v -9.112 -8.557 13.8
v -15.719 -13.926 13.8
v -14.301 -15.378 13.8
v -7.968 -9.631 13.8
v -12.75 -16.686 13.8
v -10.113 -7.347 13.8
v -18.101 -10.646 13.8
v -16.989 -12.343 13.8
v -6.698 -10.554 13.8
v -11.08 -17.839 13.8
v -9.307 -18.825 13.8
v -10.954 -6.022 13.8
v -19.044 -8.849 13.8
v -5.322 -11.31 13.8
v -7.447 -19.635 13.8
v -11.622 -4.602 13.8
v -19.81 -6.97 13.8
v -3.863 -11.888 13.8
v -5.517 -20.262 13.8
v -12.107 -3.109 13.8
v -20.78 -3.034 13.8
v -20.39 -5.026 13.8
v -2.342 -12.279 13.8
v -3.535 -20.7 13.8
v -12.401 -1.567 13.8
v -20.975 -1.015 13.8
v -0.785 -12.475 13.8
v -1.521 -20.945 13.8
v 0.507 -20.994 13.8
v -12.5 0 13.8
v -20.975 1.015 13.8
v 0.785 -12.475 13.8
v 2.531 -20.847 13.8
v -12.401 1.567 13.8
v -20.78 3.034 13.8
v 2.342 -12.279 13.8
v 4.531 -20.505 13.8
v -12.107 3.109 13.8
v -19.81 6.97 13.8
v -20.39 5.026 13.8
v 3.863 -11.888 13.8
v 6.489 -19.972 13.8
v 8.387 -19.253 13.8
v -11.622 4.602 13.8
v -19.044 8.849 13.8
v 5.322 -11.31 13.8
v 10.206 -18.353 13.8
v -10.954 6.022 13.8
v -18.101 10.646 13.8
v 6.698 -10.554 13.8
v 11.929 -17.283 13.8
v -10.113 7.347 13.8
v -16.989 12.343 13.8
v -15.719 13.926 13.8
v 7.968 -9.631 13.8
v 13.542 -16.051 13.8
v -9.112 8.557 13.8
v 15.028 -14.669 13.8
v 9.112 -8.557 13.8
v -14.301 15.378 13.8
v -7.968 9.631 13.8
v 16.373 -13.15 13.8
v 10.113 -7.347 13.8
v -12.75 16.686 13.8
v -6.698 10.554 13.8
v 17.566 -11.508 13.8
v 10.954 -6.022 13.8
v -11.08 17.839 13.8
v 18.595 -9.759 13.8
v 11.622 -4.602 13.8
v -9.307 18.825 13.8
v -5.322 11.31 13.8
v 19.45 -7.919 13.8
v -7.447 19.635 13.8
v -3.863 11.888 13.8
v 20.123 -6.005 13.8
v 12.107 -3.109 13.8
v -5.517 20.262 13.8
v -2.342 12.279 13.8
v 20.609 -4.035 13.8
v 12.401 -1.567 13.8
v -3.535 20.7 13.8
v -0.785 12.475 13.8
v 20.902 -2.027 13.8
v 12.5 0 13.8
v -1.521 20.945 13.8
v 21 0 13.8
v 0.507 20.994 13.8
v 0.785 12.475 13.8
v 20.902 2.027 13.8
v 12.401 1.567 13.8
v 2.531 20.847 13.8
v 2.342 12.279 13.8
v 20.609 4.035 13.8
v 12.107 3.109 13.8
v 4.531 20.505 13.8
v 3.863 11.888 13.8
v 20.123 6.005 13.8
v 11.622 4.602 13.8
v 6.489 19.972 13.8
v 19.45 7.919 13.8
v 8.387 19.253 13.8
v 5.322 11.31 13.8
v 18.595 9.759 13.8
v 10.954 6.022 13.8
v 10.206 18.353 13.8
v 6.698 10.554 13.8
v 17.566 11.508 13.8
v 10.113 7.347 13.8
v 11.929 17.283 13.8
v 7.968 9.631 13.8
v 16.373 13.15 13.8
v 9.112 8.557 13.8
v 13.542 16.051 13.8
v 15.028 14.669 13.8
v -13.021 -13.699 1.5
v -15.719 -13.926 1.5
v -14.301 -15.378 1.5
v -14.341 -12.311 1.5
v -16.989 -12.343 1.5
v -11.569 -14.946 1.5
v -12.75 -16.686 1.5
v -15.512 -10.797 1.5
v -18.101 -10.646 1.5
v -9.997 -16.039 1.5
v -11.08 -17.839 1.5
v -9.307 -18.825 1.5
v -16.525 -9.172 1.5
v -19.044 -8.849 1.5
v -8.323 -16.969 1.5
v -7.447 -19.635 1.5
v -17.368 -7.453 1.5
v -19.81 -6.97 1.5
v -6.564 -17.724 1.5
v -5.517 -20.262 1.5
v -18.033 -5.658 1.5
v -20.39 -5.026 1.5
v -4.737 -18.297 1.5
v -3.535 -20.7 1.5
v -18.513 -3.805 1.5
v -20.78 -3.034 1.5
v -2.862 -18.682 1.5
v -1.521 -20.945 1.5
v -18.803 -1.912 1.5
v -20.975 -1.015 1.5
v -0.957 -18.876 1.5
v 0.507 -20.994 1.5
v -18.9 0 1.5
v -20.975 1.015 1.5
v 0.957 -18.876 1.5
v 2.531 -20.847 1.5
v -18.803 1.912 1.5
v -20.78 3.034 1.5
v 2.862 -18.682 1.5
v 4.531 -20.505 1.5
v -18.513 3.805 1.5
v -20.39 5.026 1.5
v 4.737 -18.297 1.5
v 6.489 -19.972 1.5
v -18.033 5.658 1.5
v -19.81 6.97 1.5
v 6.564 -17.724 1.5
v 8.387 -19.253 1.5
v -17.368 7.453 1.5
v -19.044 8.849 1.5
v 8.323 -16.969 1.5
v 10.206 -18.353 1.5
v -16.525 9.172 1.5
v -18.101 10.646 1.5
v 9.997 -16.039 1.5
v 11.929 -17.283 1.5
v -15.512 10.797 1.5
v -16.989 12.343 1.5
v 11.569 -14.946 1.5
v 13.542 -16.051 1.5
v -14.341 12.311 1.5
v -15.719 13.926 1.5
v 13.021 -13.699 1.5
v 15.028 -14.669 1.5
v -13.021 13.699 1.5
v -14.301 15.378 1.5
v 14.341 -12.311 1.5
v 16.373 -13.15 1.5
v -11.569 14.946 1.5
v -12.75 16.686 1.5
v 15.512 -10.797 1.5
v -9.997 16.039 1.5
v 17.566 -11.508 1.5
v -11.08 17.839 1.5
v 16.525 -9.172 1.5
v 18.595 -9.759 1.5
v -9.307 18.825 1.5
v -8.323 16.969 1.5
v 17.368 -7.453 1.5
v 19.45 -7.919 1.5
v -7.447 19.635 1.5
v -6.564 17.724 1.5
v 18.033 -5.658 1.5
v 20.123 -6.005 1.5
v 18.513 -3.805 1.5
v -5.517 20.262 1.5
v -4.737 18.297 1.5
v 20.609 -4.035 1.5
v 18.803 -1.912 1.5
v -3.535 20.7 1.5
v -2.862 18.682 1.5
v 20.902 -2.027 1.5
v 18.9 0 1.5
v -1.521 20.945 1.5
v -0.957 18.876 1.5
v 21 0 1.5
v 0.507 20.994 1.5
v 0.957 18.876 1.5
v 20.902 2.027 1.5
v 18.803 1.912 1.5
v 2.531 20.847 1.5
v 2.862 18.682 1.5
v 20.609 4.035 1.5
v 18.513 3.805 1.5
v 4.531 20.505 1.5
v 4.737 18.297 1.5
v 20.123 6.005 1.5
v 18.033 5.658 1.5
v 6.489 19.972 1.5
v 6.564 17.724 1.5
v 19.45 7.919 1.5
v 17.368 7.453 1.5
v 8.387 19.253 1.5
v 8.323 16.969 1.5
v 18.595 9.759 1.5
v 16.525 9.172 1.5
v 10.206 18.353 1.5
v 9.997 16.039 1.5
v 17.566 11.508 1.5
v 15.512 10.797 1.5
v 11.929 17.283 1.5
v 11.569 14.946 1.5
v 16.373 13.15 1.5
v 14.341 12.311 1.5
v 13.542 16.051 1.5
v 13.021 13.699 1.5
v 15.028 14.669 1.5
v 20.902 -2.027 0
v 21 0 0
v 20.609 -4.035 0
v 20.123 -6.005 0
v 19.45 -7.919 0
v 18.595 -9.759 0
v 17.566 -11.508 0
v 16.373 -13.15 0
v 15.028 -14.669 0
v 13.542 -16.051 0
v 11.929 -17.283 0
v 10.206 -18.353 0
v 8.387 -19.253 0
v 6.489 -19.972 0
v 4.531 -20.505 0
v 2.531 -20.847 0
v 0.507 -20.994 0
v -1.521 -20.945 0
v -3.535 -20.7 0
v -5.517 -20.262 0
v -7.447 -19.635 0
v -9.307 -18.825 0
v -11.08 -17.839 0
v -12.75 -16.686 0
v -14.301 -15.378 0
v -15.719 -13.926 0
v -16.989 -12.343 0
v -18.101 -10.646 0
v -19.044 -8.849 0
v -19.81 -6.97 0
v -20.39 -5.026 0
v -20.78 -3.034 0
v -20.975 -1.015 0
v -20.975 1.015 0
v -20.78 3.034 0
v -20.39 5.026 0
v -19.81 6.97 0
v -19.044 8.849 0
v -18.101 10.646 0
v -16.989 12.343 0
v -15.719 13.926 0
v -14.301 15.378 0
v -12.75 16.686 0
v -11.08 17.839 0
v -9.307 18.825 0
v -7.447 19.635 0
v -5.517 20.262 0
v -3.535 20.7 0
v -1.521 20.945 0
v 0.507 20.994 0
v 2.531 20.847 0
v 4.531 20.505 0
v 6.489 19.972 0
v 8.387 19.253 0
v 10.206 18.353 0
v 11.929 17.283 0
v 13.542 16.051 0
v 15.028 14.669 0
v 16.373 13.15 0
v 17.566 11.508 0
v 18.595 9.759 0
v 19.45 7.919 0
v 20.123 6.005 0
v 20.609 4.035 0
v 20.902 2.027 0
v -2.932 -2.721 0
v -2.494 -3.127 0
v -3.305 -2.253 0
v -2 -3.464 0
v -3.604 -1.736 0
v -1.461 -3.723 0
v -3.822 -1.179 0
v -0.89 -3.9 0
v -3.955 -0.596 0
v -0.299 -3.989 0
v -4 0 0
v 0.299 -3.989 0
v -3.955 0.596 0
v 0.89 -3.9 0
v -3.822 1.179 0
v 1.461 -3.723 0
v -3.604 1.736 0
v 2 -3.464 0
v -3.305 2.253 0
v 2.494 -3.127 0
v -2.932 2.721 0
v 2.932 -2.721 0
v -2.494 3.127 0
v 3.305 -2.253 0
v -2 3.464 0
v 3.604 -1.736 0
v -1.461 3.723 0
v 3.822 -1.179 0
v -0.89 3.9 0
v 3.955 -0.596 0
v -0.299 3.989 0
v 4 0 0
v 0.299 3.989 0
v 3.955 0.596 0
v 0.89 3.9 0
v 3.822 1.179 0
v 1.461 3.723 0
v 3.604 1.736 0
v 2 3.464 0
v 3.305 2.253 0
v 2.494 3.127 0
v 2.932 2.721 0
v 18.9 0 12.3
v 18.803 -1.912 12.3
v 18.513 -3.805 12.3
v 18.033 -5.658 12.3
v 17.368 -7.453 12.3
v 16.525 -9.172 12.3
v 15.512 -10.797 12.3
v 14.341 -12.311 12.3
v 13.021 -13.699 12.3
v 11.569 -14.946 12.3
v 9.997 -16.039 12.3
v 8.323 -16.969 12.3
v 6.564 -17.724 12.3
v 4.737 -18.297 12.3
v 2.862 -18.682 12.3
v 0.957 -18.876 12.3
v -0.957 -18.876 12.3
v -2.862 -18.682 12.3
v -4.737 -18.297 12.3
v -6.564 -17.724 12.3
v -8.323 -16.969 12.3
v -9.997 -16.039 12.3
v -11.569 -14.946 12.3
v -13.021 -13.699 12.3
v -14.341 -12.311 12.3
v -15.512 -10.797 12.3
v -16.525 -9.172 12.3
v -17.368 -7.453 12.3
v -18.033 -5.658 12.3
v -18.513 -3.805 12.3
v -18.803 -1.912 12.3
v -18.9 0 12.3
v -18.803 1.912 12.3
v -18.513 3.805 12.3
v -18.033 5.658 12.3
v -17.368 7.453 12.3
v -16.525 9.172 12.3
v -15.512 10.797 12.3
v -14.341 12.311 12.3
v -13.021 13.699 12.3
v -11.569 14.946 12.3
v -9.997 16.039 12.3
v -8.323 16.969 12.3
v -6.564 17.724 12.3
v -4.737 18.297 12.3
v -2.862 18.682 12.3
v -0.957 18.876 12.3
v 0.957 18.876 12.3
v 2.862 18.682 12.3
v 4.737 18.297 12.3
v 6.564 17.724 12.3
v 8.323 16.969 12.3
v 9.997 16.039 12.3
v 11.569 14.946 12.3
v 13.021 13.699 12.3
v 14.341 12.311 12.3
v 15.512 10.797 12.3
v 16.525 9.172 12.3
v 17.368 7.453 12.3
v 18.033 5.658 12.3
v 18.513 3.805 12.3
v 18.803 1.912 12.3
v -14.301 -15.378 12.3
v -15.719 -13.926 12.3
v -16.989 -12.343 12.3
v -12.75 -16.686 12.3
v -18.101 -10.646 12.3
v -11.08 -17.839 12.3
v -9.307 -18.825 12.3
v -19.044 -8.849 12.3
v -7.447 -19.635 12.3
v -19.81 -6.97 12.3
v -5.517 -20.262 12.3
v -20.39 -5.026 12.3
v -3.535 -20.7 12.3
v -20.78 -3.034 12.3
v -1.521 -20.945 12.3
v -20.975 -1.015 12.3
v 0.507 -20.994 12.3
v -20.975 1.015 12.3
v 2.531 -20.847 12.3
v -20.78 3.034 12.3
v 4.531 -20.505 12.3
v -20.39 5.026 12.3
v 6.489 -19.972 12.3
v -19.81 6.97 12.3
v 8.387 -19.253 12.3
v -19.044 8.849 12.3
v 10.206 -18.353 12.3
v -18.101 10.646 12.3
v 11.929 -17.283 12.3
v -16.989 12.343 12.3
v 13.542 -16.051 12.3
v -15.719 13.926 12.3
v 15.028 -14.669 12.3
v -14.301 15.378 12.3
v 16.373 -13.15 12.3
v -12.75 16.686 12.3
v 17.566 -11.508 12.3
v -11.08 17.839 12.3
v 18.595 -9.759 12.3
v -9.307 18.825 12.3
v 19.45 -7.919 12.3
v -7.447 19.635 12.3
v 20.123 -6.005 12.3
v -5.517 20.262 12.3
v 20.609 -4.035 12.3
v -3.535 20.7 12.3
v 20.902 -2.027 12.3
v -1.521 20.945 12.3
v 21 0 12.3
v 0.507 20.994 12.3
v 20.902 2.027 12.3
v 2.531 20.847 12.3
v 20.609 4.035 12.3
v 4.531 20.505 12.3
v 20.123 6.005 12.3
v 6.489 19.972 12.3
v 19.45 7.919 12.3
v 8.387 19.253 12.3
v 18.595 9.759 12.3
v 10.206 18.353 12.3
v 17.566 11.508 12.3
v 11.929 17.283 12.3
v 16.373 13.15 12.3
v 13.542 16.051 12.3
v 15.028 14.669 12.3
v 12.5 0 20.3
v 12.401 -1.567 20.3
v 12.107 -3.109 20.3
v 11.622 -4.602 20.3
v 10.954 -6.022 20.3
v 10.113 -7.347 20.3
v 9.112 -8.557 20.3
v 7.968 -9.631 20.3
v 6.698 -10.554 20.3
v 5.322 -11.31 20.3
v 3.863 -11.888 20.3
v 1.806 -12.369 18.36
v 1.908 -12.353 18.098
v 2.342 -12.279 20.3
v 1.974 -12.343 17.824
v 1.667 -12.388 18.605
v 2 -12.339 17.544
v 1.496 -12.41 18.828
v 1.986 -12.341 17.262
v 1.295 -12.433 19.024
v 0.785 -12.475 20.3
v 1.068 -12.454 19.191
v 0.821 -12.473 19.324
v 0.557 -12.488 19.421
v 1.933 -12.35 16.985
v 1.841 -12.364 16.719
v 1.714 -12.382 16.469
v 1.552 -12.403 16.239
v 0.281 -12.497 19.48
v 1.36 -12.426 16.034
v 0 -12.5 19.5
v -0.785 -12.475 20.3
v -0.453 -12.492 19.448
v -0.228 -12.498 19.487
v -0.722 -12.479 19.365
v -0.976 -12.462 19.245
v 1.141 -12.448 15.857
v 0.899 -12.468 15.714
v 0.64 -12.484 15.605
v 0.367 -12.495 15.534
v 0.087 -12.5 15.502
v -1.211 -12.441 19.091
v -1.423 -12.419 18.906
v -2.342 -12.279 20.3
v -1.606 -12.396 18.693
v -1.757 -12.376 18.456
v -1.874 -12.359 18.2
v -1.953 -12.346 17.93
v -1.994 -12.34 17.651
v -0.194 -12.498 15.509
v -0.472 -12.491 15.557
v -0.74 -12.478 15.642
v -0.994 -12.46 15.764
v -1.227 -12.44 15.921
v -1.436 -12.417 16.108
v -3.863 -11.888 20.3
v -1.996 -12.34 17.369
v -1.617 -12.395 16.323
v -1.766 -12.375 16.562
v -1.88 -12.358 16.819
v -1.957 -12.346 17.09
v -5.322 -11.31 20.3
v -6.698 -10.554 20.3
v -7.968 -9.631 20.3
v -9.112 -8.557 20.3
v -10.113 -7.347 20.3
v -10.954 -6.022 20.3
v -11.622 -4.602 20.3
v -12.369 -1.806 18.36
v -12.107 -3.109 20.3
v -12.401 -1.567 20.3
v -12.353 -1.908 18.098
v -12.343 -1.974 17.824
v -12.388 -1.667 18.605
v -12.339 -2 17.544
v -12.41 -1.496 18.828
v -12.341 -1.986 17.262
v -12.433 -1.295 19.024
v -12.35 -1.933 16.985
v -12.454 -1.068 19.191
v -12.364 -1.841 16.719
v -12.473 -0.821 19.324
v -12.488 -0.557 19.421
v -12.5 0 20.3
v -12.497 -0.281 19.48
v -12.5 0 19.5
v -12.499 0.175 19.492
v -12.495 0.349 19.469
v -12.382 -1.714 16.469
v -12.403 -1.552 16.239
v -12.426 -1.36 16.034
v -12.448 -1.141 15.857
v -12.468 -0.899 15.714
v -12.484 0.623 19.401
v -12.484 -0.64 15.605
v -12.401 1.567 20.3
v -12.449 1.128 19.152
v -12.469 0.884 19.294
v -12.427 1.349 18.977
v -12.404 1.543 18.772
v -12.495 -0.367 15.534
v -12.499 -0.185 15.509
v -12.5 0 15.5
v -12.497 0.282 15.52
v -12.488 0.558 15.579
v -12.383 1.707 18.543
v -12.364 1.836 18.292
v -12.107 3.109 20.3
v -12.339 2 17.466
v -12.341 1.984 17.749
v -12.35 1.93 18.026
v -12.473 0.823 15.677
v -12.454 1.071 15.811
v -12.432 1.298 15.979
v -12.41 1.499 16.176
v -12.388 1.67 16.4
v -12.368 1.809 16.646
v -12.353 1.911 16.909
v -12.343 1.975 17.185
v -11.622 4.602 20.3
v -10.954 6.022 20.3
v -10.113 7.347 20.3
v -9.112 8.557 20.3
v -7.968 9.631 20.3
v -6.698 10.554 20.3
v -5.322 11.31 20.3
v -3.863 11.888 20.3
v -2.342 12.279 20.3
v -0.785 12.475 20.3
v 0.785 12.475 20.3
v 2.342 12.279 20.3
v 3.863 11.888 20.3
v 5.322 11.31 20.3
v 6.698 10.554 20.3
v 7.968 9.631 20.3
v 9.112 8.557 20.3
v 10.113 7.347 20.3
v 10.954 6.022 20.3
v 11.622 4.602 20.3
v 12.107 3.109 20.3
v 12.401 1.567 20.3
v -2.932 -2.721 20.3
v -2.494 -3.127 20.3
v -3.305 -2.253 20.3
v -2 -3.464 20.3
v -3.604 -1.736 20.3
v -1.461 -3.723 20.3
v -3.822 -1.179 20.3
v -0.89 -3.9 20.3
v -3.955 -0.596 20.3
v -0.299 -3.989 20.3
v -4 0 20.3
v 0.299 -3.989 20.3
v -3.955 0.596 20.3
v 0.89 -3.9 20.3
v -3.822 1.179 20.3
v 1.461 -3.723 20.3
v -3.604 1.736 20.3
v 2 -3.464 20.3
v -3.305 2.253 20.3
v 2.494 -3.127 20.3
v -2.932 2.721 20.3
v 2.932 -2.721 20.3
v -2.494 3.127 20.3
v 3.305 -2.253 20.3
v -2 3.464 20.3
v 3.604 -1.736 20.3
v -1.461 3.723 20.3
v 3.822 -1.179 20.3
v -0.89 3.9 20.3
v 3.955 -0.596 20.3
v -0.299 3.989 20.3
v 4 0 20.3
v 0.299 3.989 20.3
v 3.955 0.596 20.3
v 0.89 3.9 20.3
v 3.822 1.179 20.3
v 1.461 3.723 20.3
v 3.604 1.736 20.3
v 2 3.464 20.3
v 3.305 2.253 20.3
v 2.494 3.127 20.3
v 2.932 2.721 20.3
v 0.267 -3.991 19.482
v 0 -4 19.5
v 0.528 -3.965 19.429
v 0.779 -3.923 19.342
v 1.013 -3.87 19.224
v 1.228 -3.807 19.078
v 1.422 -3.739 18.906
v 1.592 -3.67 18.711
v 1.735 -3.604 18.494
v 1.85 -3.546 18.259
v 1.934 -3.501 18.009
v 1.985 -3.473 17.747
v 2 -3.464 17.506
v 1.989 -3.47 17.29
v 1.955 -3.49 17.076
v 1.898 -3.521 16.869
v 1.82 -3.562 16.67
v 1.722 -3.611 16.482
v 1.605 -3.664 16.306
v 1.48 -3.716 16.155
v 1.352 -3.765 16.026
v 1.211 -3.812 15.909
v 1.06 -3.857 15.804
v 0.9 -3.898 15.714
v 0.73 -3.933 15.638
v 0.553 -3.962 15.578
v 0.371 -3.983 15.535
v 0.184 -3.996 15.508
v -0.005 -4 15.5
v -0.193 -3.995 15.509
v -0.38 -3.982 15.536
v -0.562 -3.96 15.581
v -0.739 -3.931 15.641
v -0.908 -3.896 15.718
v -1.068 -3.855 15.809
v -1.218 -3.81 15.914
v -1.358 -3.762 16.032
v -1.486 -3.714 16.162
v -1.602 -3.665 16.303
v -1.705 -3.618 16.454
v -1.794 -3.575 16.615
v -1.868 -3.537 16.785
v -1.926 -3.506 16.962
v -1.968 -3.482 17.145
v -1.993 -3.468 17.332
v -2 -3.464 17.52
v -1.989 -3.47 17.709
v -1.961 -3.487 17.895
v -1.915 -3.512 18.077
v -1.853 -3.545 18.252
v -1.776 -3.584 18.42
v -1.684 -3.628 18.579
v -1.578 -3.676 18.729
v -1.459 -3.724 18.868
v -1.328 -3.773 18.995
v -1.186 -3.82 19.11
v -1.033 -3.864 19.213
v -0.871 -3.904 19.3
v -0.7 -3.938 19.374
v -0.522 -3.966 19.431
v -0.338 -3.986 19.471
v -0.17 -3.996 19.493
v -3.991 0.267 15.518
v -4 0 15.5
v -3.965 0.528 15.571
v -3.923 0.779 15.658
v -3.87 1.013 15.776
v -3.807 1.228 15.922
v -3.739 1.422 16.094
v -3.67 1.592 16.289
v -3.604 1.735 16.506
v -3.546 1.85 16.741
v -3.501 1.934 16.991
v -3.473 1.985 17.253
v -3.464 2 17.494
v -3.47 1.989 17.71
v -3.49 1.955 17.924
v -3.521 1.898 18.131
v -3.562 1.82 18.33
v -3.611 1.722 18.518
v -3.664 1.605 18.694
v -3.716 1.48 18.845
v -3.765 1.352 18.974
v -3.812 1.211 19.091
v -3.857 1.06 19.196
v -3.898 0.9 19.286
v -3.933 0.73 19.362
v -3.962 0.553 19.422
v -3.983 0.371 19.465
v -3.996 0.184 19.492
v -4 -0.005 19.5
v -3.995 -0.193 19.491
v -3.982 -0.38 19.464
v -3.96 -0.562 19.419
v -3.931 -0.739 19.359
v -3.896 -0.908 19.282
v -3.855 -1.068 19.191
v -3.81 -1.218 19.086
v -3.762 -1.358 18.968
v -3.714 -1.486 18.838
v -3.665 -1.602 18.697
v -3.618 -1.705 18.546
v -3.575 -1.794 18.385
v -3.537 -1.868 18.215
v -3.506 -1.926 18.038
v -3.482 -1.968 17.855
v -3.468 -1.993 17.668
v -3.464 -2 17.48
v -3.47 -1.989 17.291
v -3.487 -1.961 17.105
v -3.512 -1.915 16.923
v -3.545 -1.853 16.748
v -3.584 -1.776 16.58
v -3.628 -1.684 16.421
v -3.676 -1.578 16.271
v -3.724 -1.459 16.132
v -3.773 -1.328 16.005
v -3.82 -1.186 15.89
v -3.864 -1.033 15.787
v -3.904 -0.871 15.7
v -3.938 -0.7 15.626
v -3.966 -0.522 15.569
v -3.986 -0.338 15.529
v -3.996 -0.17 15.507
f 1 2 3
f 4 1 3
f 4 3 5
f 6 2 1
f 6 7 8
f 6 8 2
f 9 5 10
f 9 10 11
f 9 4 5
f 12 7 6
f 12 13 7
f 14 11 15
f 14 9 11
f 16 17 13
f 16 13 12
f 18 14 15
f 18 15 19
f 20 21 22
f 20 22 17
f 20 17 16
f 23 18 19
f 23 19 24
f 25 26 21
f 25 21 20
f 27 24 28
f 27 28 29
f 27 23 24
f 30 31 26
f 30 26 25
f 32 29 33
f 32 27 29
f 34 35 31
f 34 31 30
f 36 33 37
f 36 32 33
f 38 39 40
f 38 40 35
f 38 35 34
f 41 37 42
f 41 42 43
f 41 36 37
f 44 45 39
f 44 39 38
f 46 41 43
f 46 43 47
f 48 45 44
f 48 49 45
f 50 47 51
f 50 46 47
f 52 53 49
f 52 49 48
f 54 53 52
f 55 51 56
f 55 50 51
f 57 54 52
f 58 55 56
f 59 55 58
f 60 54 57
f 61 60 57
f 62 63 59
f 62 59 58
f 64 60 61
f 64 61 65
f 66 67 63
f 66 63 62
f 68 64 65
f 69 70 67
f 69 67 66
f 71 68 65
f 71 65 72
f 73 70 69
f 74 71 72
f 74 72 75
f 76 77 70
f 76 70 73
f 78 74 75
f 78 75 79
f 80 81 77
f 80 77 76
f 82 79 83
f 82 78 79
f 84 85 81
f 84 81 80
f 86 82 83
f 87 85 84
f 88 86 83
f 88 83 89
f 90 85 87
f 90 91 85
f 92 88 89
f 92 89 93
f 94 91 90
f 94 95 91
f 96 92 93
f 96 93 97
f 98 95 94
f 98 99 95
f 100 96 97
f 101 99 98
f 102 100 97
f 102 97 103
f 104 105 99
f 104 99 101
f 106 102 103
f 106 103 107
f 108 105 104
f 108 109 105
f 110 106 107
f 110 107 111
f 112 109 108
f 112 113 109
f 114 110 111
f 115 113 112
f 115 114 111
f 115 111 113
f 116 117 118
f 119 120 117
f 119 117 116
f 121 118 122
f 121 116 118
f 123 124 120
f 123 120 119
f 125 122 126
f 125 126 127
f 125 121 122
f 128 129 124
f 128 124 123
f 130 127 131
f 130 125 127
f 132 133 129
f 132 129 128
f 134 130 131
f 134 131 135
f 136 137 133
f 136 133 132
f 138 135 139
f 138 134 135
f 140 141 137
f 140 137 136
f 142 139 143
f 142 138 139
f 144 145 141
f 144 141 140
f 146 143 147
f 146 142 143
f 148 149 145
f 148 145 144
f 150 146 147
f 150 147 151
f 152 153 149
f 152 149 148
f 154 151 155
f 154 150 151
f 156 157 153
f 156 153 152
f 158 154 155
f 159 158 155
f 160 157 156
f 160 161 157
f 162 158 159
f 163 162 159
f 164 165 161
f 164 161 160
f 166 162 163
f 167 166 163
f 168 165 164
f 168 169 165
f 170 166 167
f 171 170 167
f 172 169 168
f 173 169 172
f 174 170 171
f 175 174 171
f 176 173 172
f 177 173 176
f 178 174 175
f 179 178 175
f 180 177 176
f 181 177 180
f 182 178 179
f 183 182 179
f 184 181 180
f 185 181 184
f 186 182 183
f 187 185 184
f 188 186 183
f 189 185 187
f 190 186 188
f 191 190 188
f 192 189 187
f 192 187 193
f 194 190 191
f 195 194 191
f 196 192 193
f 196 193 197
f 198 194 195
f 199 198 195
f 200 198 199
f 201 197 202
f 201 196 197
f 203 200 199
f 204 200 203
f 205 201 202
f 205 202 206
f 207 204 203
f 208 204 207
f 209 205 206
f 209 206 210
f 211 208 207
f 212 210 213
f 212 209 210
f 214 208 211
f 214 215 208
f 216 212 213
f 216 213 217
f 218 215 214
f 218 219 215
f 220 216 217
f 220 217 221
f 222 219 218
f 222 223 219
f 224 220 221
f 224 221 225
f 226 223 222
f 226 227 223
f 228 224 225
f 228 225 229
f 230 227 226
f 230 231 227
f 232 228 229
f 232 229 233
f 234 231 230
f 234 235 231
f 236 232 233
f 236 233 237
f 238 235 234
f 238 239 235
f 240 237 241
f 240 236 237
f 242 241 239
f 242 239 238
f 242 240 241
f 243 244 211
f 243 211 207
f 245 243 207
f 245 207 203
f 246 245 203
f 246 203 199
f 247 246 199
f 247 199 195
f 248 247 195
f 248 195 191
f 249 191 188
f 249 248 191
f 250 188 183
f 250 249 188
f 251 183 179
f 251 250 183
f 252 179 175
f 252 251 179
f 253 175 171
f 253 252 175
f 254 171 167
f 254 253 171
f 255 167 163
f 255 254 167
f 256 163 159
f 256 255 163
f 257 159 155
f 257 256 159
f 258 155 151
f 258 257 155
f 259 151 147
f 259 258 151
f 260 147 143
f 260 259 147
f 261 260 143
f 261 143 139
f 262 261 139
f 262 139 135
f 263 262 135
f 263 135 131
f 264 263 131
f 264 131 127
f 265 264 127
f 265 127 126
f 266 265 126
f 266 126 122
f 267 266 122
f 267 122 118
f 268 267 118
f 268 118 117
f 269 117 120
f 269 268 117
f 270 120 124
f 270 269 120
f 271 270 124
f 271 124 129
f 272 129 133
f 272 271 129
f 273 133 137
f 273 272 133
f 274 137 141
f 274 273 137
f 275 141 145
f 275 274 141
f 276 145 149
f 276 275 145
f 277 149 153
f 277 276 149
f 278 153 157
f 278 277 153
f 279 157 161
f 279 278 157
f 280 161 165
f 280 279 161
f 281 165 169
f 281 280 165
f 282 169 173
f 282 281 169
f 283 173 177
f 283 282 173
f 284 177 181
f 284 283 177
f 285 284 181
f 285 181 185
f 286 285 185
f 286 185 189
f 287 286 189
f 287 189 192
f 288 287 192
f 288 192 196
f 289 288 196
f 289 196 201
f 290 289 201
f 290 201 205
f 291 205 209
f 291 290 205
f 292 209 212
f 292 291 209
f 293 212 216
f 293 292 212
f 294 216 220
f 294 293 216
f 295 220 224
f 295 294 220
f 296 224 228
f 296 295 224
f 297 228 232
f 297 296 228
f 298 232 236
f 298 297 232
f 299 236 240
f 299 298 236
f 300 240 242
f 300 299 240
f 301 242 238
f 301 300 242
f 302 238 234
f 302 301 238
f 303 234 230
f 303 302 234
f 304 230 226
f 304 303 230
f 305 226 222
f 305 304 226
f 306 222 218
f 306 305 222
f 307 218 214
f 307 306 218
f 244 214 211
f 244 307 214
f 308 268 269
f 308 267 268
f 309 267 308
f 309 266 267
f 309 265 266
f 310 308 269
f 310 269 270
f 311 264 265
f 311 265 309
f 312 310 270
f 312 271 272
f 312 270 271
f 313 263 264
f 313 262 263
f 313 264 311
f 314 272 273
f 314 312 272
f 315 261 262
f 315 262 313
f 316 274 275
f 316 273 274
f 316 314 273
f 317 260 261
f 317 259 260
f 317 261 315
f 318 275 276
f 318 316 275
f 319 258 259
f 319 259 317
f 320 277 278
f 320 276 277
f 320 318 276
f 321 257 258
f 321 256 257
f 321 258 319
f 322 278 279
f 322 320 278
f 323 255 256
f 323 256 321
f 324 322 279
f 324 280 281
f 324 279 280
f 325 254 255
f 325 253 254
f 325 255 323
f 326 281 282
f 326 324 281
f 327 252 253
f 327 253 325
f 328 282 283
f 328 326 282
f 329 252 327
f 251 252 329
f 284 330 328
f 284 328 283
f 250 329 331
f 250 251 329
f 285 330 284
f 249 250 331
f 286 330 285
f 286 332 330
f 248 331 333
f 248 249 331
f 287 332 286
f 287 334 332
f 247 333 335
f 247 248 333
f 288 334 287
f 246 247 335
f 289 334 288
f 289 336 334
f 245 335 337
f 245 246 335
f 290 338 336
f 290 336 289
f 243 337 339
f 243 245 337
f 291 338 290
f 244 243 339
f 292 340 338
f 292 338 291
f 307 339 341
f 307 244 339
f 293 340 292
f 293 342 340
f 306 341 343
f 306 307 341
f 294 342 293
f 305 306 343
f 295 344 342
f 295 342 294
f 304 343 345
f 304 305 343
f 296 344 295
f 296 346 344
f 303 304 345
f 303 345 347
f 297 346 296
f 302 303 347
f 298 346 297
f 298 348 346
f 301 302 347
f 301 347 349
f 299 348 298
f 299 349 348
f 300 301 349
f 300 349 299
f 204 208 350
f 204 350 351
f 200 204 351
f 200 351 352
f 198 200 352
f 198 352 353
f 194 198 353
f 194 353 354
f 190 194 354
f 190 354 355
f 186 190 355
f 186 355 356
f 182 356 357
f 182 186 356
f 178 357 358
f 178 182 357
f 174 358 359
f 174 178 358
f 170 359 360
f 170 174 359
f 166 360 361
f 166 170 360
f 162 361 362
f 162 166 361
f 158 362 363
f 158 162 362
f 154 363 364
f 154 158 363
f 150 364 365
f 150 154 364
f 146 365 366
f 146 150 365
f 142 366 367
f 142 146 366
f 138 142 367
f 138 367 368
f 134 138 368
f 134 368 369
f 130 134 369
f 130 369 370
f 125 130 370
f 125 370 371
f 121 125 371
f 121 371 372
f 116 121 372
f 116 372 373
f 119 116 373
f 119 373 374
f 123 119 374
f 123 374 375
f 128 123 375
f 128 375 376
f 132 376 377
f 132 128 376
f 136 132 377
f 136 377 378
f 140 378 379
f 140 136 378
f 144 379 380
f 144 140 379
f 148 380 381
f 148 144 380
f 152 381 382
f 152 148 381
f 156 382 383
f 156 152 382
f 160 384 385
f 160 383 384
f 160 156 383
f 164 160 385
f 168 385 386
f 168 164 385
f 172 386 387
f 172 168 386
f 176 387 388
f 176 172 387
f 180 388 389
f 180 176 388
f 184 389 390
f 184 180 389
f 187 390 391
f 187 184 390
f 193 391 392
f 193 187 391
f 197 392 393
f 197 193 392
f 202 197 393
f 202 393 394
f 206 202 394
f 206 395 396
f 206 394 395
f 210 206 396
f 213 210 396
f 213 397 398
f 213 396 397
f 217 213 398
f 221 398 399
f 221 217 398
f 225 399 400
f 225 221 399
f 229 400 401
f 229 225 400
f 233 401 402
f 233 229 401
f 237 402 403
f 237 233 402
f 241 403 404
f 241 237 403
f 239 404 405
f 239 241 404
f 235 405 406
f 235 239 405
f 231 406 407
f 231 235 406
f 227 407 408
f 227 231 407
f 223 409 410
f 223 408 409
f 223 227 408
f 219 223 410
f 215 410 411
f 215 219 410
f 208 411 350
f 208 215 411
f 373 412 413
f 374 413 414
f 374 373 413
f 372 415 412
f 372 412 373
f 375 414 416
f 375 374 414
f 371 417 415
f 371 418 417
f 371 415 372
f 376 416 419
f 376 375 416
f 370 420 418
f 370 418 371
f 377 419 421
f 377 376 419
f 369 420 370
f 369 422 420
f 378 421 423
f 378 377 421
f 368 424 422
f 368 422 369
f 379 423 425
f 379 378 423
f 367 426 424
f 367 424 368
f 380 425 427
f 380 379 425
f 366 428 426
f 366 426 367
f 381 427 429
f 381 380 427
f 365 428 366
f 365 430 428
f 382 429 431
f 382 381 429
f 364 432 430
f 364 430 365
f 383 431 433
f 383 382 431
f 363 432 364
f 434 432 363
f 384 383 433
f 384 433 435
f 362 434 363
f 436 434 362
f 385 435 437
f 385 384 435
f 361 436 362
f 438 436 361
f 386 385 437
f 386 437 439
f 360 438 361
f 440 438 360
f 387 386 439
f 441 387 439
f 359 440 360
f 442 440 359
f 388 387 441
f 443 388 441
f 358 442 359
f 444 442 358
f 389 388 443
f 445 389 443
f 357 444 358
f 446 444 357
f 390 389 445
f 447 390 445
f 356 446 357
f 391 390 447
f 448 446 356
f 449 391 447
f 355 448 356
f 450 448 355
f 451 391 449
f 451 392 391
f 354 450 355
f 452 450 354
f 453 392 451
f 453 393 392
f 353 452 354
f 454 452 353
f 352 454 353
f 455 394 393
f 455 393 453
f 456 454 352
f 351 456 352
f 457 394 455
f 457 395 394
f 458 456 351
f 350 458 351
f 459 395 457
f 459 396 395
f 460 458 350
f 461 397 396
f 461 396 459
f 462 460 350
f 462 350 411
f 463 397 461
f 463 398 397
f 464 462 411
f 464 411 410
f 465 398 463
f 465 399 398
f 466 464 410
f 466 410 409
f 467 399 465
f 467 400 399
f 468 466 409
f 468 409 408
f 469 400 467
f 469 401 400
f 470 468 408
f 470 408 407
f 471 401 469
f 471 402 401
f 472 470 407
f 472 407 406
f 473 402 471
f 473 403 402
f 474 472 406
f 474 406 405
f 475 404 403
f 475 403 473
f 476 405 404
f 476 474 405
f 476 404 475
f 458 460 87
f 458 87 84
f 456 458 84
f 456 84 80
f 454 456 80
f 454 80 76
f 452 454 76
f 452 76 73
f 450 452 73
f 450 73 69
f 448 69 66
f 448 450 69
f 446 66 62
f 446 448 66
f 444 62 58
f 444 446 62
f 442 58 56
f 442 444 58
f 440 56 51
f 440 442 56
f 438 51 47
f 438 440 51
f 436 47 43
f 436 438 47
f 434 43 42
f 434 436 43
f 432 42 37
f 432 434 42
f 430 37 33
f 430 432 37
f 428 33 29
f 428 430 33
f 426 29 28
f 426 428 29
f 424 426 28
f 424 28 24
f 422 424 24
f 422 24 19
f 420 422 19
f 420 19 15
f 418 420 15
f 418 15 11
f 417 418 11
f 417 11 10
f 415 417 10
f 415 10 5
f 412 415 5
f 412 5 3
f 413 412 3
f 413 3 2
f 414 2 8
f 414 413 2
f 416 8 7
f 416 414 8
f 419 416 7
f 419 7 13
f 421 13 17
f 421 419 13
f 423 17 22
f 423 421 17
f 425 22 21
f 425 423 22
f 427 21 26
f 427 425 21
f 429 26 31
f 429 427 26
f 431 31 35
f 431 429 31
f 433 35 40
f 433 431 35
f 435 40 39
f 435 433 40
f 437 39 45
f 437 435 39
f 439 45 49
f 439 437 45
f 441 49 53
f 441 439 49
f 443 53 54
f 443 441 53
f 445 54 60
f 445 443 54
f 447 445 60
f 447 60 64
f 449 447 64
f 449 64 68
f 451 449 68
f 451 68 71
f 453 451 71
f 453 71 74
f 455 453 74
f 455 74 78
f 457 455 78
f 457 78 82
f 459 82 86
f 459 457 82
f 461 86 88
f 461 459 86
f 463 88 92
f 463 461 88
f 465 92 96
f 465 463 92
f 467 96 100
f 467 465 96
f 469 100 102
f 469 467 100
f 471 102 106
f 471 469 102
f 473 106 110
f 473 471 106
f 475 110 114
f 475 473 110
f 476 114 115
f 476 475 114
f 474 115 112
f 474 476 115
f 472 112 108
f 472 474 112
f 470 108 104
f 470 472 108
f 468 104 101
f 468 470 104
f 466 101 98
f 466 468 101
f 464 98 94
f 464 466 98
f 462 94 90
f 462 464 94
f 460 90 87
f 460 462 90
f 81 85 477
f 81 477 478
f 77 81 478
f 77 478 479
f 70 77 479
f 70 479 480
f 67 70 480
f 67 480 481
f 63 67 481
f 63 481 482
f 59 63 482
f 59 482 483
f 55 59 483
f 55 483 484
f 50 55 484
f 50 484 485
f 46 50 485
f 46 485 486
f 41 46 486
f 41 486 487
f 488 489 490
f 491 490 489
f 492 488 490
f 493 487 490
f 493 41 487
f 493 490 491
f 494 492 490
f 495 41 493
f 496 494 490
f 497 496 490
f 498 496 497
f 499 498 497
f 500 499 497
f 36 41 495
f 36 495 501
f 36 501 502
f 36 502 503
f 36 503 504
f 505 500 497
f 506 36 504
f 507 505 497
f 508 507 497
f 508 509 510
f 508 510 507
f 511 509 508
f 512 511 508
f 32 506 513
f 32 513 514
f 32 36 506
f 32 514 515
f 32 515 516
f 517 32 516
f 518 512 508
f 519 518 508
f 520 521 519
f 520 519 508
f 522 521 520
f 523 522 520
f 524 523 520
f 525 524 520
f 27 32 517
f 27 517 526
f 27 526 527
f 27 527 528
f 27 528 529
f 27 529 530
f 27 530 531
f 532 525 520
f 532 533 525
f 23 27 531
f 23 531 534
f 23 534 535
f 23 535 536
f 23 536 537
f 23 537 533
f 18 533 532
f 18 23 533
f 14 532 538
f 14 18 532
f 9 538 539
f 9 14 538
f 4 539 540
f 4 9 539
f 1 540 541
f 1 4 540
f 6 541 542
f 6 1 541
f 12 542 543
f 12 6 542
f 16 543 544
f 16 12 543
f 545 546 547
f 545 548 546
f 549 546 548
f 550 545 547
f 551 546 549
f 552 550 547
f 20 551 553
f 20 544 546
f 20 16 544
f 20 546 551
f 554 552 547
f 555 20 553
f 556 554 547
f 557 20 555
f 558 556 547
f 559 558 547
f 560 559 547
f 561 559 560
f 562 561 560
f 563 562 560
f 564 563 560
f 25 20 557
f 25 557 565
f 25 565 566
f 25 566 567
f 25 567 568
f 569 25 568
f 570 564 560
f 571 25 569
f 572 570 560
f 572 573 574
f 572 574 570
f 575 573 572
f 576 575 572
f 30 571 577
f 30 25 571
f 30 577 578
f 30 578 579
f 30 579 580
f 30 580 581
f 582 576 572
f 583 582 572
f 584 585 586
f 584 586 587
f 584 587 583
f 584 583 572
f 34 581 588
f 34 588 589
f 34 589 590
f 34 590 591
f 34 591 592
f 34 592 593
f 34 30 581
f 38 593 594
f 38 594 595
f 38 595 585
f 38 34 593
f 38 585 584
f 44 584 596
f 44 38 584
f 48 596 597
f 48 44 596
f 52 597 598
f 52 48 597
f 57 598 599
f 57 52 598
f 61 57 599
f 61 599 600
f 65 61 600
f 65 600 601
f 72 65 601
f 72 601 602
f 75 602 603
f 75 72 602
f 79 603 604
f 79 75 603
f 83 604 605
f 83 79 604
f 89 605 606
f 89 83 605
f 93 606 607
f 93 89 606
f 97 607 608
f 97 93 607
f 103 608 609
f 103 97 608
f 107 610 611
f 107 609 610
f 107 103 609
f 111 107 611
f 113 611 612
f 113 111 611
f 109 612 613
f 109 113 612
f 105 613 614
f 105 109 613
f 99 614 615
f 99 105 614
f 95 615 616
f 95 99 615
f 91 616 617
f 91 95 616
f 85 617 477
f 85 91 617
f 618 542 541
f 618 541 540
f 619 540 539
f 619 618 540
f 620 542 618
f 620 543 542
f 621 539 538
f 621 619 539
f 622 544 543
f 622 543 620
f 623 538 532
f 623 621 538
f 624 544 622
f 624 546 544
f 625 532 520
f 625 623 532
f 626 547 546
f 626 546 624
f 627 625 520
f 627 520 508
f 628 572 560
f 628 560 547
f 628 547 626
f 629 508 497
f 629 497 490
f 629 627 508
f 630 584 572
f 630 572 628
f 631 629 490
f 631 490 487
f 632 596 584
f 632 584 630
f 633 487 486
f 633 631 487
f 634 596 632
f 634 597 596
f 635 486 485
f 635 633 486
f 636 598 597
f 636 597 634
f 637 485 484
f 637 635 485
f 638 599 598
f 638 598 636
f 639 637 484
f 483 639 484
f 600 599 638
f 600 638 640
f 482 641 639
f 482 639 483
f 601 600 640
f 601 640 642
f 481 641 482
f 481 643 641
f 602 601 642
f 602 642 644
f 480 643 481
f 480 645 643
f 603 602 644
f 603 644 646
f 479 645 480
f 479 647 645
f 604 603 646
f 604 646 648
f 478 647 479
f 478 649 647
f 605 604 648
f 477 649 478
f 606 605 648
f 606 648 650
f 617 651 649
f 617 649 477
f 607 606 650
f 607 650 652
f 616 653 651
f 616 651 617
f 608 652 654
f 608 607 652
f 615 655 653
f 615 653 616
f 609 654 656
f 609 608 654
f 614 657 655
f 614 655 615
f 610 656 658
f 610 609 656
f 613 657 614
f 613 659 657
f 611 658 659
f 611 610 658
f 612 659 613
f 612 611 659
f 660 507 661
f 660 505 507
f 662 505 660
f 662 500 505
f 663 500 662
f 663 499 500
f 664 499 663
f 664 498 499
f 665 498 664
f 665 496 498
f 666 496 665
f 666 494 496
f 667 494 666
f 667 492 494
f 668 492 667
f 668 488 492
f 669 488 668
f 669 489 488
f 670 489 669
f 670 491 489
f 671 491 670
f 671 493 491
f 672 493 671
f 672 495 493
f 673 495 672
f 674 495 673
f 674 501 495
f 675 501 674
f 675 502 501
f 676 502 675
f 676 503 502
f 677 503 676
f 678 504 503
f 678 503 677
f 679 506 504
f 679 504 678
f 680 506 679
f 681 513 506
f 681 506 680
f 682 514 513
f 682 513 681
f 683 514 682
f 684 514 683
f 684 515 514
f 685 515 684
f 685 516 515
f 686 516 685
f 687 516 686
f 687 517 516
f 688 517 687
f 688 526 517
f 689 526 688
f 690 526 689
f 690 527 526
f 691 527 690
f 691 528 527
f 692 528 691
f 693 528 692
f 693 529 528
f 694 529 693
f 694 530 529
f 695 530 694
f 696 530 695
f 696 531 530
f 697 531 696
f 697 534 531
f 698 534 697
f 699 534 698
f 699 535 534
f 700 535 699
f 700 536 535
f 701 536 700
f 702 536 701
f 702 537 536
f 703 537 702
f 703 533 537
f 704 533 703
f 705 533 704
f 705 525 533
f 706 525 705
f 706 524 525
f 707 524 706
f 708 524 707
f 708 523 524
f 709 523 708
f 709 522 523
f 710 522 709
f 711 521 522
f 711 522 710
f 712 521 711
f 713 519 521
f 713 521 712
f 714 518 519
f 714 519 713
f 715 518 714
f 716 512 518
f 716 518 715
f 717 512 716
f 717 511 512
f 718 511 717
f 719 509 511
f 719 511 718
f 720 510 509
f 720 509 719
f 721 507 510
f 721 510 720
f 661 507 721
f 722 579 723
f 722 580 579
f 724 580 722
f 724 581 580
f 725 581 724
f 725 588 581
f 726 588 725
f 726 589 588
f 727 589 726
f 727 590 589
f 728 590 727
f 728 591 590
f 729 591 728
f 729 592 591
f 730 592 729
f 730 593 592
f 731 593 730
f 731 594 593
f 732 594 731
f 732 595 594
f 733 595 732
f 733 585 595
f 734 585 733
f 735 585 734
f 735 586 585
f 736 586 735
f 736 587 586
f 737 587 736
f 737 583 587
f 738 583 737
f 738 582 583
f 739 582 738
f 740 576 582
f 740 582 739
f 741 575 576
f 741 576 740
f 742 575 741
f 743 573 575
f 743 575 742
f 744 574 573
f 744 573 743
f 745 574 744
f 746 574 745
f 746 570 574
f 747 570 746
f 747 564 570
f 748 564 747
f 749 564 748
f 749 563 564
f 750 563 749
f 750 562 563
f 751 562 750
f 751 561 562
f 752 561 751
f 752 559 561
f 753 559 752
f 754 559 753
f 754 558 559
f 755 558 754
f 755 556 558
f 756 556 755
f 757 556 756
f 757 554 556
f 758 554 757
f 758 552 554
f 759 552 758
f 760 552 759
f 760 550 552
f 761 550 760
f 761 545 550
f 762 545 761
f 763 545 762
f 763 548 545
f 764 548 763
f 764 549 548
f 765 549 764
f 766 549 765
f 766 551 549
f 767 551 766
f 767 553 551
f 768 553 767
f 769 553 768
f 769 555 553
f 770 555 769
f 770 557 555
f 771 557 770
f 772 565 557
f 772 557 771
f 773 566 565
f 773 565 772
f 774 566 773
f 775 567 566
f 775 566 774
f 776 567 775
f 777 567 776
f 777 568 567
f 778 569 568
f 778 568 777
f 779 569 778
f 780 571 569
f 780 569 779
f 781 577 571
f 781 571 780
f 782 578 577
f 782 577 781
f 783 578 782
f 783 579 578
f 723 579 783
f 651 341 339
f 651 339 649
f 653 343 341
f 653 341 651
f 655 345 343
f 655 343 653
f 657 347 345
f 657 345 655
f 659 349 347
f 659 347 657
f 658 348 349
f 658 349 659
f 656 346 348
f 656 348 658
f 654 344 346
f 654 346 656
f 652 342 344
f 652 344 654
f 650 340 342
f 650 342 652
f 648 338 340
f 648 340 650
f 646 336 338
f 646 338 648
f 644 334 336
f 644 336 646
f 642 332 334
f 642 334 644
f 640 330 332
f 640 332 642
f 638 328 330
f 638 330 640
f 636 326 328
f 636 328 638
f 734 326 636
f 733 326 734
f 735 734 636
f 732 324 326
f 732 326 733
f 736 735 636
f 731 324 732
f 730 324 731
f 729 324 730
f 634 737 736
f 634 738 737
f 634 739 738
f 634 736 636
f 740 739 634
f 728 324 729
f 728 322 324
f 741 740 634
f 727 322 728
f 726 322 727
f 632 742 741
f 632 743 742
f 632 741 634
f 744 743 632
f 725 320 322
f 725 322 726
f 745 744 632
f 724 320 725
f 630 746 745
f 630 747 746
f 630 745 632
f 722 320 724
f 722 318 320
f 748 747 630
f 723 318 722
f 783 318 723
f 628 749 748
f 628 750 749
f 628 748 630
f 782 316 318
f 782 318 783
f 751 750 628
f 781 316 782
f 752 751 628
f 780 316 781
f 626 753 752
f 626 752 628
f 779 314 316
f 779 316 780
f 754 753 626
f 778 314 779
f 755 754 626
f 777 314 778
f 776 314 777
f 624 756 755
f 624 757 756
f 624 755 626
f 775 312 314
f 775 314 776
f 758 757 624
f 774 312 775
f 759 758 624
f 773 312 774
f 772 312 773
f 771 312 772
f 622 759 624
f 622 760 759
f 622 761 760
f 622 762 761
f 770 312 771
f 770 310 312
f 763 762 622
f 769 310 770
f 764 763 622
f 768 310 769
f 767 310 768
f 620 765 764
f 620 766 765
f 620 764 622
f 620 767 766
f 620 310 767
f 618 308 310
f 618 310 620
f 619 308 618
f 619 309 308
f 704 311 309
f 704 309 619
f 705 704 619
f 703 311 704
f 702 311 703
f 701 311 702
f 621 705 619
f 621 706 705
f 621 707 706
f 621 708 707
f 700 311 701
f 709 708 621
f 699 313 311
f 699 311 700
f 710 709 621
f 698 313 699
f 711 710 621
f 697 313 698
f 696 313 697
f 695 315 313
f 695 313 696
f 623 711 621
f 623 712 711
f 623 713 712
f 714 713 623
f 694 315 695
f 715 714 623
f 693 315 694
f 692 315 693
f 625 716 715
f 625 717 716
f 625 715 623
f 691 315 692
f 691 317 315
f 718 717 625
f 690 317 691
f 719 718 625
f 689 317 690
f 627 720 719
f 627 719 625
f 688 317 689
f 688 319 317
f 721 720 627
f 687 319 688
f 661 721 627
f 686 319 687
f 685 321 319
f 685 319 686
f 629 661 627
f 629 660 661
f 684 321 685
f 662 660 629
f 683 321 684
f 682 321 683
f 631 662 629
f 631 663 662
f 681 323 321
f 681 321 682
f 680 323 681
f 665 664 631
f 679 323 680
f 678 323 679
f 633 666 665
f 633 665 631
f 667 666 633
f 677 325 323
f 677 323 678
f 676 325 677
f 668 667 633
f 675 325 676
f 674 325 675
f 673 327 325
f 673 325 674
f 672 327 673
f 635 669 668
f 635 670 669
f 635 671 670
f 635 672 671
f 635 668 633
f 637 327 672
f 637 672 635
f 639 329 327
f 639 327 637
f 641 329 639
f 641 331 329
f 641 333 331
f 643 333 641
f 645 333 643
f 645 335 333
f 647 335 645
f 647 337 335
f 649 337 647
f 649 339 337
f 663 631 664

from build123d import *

# Parameters (mm, degrees)
CROQUIS1_R              = 21
SALIENTE_EXTRUIR1_DEPTH = 1.5
CROQUIS2_R              = 18.9
SALIENTE_EXTRUIR2_DEPTH = 10.8
CROQUIS3_R              = 21
SALIENTE_EXTRUIR3_DEPTH = 1.5
CROQUIS8_R              = 12.5
SALIENTE_EXTRUIR5_DEPTH = 6.5
CROQUIS6_R              = 2
CORTAR_EXTRUIR3_DEPTH   = 36.973462441
CROQUIS5_R              = 2
CORTAR_EXTRUIR2_DEPTH   = 36.973462498
CROQUIS4_R              = 4
CORTAR_EXTRUIR1_DEPTH   = 36.973462441


with BuildPart() as part:
    # Croquis1 → Saliente-Extruir1 (new body)
    with BuildSketch(Plane.XY):
        Circle(CROQUIS1_R)
    extrude(amount=SALIENTE_EXTRUIR1_DEPTH)

    # Croquis2 → Saliente-Extruir2 (add)
    with BuildSketch(Plane.XY.offset(1.5)):
        with Locations(Location((0, 0, 0), (0, 0, 180))):
            Circle(CROQUIS2_R)
    extrude(amount=SALIENTE_EXTRUIR2_DEPTH)

    # Croquis3 → Saliente-Extruir3 (add)
    with BuildSketch(Plane.XY.offset(12.3)):
        Circle(CROQUIS3_R)
    extrude(amount=SALIENTE_EXTRUIR3_DEPTH)

    # Croquis8 → Saliente-Extruir5 (add)
    with BuildSketch(Plane.XY.offset(13.8)):
        with Locations(Location((0, 0, 0), (0, 0, 180))):
            Circle(CROQUIS8_R)
    extrude(amount=SALIENTE_EXTRUIR5_DEPTH)

    # Croquis6 → Cortar-Extruir3 (cut, through all)
    with BuildSketch(Plane(origin=(0, 0, 0), x_dir=(1, 0, 0), z_dir=(0, 1, 0))):
        with Locations(Location((0, -17.5, 0), (0, 0, 270))):
            Circle(CROQUIS6_R)
    extrude(amount=-CORTAR_EXTRUIR3_DEPTH, mode=Mode.SUBTRACT)

    # Croquis5 → Cortar-Extruir2 (cut, through all)
    with BuildSketch(Plane(origin=(0, 0, 0), x_dir=(0, 0, -1), z_dir=(1, 0, 0))):
        with Locations(Location((-17.5, 0, 0), (0, 0, 180))):
            Circle(CROQUIS5_R)
    extrude(amount=-CORTAR_EXTRUIR2_DEPTH, mode=Mode.SUBTRACT)

    # Croquis4 → Cortar-Extruir1 (cut, through all)
    with BuildSketch(Plane.XY.offset(20.3)):
        Circle(CROQUIS4_R)
    extrude(amount=-CORTAR_EXTRUIR1_DEPTH, mode=Mode.SUBTRACT)


solid = part.part
